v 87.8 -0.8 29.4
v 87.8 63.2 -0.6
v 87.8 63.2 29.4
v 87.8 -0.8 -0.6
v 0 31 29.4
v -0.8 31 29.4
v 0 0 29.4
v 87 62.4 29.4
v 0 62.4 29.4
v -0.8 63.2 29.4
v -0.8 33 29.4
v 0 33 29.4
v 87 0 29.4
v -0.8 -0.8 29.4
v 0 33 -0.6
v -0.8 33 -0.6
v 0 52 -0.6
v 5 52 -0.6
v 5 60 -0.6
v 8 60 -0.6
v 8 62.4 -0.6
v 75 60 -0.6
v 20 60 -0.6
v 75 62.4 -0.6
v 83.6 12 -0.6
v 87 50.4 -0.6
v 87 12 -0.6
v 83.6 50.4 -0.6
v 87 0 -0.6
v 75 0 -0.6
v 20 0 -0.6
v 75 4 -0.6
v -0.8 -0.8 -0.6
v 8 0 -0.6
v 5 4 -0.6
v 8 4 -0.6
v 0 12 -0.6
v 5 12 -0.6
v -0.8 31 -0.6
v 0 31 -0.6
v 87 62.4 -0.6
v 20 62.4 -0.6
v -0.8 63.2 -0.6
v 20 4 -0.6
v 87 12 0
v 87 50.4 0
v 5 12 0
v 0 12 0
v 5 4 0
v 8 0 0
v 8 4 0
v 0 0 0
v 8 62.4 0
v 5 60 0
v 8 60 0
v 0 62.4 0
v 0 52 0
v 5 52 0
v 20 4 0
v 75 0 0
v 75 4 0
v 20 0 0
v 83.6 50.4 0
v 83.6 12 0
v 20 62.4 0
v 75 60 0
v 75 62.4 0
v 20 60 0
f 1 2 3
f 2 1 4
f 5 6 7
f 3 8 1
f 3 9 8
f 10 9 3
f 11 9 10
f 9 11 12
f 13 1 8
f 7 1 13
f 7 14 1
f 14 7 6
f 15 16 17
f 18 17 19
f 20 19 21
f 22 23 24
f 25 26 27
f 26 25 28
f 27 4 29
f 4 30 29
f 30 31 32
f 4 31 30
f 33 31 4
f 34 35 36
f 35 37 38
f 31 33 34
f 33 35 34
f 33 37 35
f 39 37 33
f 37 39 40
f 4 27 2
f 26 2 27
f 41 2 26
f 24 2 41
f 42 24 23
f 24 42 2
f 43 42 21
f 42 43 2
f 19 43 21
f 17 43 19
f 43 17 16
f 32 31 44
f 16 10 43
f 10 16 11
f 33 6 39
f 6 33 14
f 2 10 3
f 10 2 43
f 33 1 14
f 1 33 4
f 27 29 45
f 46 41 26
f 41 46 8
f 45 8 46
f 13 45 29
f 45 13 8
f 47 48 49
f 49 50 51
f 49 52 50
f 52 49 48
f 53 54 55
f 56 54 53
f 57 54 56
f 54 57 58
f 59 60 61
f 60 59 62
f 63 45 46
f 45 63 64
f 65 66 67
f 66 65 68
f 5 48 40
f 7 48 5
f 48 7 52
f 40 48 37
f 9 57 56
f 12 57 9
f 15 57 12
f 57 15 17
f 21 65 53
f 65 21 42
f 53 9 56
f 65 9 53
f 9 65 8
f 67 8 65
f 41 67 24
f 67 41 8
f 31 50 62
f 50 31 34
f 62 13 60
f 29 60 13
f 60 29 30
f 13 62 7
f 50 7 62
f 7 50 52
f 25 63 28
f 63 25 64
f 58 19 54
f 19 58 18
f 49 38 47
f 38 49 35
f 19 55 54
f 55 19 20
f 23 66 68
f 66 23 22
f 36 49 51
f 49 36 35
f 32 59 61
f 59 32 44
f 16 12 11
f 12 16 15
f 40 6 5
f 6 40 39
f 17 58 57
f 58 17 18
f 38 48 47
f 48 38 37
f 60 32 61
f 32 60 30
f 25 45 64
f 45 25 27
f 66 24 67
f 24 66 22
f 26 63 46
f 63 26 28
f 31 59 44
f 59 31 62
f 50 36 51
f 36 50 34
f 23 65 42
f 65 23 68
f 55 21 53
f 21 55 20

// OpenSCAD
difference() {
    translate([-0.8, -0.8, -0.6]) cube([88.6,64,30]);
    cube([87,62.4,30]); // inside
    translate([5, 4, -1]) cube([78.6,56,30]); // opening of the top
    translate([-1, 31, -1]) cube([10,2,32]);  // opening
    translate([0, 12,-1]) cube([10,40,35]);
    translate([75,0,-1]) cube([12,12,35]);
    translate([75,50.4,-1]) cube([12,12,35]);
    translate([8,0,-1]) cube([12,12,35]);
    translate([8,50.4,-1]) cube([12,12,35]);

}
